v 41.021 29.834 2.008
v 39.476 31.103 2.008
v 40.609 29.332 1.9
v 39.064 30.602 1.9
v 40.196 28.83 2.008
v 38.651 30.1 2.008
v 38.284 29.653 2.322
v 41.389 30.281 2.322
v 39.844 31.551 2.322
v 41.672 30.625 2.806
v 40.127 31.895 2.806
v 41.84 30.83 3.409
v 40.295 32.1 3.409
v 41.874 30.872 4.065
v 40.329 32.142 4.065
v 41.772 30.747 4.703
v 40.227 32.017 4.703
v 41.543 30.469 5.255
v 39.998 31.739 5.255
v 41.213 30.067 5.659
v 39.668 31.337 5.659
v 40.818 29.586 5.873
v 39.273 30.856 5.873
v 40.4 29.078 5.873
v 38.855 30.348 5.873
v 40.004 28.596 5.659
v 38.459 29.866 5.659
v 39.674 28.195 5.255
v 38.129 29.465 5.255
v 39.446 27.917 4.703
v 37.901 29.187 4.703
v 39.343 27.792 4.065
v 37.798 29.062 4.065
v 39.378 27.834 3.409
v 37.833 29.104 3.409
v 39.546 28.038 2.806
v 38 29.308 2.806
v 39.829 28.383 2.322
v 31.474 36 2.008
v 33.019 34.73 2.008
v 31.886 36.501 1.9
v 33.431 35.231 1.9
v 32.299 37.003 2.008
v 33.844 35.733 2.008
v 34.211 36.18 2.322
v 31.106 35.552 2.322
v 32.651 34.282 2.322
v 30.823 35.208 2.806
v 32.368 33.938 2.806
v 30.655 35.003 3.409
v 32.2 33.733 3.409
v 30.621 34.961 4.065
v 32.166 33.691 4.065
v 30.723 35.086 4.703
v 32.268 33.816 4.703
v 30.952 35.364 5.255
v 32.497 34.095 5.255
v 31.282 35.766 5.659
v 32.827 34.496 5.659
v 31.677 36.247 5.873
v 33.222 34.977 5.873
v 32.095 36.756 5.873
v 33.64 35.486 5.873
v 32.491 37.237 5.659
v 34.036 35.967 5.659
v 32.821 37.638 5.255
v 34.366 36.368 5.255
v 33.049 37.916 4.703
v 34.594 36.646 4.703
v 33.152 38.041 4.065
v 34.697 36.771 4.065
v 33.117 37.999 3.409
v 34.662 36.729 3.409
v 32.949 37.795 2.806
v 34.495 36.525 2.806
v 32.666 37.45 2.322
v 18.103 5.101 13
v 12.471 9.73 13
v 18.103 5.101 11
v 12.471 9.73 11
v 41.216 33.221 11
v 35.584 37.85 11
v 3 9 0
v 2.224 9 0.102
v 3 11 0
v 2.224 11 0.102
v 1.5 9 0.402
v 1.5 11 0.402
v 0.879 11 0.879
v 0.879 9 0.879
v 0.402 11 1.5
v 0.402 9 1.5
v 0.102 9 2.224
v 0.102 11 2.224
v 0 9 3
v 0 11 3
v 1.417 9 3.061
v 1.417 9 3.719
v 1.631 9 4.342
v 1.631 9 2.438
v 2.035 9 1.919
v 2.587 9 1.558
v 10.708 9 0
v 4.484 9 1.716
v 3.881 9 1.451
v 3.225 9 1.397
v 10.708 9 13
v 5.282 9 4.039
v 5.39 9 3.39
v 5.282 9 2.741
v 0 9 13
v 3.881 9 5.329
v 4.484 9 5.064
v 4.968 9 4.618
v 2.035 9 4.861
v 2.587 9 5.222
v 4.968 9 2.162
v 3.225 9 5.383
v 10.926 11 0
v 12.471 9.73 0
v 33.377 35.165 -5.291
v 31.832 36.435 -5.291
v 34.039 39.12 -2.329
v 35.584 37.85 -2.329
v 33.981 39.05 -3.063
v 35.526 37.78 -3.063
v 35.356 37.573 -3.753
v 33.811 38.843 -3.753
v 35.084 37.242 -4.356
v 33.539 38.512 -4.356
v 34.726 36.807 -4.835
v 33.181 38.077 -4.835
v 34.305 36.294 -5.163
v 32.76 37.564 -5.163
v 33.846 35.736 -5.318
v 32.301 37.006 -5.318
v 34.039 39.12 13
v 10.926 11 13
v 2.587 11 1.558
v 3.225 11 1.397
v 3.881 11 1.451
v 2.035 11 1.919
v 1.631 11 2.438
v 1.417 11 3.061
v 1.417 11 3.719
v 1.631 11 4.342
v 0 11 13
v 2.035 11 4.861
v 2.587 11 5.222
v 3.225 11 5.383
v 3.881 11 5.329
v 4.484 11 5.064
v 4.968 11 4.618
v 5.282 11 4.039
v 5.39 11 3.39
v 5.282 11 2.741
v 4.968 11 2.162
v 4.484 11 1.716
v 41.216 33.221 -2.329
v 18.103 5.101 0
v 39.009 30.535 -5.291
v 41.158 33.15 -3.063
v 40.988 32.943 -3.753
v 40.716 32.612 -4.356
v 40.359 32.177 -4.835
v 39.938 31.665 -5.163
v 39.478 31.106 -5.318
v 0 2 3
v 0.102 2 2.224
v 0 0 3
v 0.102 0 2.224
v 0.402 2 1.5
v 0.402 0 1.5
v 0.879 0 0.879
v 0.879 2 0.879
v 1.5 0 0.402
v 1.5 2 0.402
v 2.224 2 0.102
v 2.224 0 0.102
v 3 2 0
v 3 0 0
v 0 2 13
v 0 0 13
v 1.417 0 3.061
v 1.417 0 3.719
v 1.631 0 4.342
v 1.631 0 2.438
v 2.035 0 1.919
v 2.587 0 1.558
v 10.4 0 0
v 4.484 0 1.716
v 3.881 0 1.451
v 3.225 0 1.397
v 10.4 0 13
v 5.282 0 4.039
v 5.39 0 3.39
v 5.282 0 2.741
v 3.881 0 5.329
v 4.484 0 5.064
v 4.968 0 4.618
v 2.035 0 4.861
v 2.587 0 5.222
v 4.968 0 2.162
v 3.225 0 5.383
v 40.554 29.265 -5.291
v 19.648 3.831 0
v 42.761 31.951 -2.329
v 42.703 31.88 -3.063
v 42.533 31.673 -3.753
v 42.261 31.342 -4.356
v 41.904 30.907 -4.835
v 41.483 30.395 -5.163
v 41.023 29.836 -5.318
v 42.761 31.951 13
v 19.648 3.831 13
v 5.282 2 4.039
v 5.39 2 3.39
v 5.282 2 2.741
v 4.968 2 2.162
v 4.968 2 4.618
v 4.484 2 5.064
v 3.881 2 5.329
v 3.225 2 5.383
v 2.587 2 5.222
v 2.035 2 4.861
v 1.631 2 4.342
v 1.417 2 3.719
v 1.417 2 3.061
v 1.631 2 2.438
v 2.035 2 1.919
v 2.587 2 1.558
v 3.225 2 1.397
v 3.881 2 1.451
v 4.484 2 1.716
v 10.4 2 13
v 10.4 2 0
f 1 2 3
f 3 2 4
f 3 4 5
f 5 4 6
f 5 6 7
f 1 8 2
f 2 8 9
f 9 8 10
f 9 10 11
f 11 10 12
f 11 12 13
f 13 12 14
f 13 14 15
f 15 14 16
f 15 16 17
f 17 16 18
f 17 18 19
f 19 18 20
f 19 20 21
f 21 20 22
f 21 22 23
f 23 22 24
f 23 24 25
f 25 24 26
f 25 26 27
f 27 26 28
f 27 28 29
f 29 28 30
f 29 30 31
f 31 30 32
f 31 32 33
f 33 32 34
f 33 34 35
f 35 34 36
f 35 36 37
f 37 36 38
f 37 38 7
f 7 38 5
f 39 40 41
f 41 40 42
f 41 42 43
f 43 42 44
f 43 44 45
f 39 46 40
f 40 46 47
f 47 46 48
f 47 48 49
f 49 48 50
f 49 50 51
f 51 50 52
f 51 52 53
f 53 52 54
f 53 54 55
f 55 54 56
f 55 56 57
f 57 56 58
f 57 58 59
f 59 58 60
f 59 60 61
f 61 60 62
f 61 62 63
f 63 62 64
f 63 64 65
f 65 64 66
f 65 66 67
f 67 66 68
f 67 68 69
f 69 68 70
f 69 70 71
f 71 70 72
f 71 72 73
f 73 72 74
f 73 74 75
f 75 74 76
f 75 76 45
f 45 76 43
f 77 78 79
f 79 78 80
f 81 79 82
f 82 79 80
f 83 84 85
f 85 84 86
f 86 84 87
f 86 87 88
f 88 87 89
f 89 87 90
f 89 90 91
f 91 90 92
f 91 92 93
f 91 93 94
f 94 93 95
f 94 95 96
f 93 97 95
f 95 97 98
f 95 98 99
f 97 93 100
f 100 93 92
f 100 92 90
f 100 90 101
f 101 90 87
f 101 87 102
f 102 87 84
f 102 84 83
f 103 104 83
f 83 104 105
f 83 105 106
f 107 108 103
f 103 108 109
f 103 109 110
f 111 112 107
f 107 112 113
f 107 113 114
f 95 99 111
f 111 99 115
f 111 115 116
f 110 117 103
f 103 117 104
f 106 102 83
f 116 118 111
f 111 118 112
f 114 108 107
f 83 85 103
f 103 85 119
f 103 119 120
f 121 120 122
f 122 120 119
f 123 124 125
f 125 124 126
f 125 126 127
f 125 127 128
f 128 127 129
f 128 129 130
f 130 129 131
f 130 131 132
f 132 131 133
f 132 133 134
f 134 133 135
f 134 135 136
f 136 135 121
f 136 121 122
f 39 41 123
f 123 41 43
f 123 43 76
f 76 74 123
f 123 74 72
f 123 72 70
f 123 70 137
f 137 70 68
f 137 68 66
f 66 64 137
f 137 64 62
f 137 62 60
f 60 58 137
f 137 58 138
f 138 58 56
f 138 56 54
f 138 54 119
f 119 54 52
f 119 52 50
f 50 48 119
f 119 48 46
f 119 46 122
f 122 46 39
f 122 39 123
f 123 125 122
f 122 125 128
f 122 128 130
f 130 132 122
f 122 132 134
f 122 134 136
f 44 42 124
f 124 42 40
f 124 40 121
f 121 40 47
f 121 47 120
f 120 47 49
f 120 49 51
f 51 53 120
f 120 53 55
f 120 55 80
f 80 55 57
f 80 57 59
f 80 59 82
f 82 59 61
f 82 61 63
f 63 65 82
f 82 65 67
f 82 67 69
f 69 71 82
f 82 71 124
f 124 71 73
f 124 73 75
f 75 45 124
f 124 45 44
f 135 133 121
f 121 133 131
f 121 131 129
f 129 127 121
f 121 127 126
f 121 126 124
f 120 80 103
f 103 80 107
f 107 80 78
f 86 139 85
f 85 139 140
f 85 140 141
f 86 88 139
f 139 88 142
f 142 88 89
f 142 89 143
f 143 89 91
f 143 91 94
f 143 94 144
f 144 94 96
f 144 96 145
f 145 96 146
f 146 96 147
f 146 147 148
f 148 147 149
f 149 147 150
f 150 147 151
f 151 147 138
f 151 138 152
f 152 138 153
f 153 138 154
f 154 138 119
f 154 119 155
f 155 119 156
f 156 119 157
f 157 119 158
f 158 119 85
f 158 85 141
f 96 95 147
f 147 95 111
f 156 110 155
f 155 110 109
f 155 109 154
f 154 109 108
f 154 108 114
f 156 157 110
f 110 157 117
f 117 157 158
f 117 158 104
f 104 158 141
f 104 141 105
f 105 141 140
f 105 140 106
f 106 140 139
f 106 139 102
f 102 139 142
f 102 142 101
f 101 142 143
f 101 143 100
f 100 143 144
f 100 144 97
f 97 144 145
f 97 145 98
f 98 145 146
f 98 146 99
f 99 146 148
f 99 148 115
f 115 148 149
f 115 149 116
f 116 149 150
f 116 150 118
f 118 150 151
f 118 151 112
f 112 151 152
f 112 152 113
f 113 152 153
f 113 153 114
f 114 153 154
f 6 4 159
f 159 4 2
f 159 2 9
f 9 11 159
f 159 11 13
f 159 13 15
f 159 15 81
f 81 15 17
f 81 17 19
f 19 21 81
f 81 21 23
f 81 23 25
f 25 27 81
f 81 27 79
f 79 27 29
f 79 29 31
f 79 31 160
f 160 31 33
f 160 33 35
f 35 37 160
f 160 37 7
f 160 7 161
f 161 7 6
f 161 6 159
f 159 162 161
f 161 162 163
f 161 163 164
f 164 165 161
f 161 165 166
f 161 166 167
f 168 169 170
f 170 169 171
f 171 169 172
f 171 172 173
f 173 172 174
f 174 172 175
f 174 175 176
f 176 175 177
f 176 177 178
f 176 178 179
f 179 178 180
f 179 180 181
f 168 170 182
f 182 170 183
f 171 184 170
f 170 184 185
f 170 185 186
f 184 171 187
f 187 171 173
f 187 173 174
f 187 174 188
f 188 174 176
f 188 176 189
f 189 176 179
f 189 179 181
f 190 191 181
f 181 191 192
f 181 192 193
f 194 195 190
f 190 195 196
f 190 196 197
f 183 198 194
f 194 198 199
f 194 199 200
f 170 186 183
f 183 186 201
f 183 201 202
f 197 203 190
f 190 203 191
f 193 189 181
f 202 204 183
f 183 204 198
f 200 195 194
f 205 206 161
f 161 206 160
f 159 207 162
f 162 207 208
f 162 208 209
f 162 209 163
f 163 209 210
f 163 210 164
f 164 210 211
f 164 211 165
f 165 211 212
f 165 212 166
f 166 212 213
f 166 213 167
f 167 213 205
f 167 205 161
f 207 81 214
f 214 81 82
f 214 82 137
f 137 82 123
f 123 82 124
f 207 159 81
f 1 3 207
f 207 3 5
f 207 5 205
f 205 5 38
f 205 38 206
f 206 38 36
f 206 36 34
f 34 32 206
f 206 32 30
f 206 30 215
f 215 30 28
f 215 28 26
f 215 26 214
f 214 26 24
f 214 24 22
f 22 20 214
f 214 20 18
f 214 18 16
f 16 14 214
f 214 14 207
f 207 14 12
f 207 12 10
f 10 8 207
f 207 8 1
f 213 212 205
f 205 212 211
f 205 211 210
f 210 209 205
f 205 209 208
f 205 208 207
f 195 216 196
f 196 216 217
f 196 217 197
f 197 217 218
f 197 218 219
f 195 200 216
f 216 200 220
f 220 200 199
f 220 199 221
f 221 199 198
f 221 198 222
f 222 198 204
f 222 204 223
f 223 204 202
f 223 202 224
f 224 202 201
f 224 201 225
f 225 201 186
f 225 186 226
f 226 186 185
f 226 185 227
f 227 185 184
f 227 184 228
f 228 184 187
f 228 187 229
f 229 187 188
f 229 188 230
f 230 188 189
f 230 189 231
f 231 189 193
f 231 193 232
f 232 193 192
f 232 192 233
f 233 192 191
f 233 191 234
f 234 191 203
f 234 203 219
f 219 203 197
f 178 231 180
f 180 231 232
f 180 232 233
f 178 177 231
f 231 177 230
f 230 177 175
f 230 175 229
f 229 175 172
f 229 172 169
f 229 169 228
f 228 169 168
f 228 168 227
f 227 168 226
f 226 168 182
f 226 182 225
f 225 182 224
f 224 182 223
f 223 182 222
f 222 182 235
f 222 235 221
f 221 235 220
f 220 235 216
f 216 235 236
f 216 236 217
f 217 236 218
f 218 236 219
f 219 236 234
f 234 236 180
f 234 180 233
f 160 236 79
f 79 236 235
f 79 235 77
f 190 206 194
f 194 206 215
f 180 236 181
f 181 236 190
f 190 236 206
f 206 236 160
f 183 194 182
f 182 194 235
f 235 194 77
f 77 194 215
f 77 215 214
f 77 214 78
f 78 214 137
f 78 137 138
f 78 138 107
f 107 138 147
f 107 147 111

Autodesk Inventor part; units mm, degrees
ref_plane "YZ Plane" through (0, 0, 0) normal (1, 0, 0) x (0, 1, 0)
ref_plane "XZ Plane" through (0, 0, 0) normal (0, 1, 0) x (-1, 0, 0)
ref_plane "XY Plane" through (0, 0, 0) normal (0, 0, 1) x (1, 0, 0)
sketch "Esquisse1" plane through (0, 0, 0) normal (0, 0, 1) x (1, 0, 0)
  line L0 (0, 0) -> (0, 2)
  line L1 (0, 2) -> (10.4, 2)
  line L2 (0, 0) -> (10.4, 0)
  line L3 (10.4, 0) -> (19.648, 3.8307)
  line L4 (0, 9) -> (10.7082, 9)
  line L5 (0, 11) -> (0, 9)
  line L6 (0, 11) -> (10.9257, 11)
  line L7 (10.4, 2) -> (18.103, 5.1006)
  line L8 (18.103, 5.1006) -> (19.648, 3.8307)
  line L9 (10.9257, 11) -> (19.648, 3.8307) construction
  line L10 (10.9257, 11) -> (12.2416, 9.9184) construction
  line L11 (10.9257, 11) -> (12.4707, 9.73)
  line L12 (10.7082, 9) -> (12.4707, 9.73)
  dimension "d0" = 2
  dimension "d1" = 10.4
  dimension "d2" = 10.4
  dimension "d3" = 157.5
  dimension "d5" = 10.01
  dimension "d8" = 7
  dimension "d26" = 2
  dimension "d32" = 2
  dimension "d33" = 2
  dimension "d34" = 157.5
extrude "Extrusion1" add sketch "Esquisse1" along normal blind 13
sketch "Esquisse4" plane through (0, 0, 0) normal (0, -1, 0) x (1, 0, 0)
  circle A0 centre (3.39, 3.39) radius 2
  line L0 (0, 13) -> (10.4, 13) projected
  line L1 (0, 0) -> (0, 13) projected
  line L2 (10.4, 0) -> (0, 0) projected
  point P0 (3, 13)
  point P1 (0, 10)
  dimension "d35" = 4
  dimension "d37" = 3.39
  dimension "d50" = 3.39
extrude "Extrusion3" cut sketch "Esquisse4" against normal blind 13
ref_plane "Plan de construction3" through (19.648, 3.8307, 13) normal (-0.7725294, 0.634979, 0) x (-0.634979, -0.7725294, 0)
sketch "Esquisse5" plane through (19.648, 3.8307, 13) normal (-0.7725294, 0.634979, 0) x (-0.634979, -0.7725294, 0)
  line L0 (0, 0) -> (6.9376, 0) projected
  line L1 (0, -13) -> (6.9376, -13) projected
  line L2 (0, 0) -> (0, -13)
  line L3 (0, -13) -> (-32.924, -18.2914)
  line L4 (-36.4, -15.3294) -> (-36.4, 0)
  line L5 (-36.4, 0) -> (0, 0)
  arc A0 (-36.4, -15.3294) -> (-32.924, -18.2914) centre (-33.4, -15.3294) ccw
  point P0 (15.4354, -13)
  point P1 (5.0326, 0)
  point P2 (-36.4, -18.85)
  dimension "d40" = 36.4
  dimension "d41" = 18.85
  dimension "d42" = 3
extrude "Extrusion4" add sketch "Esquisse5" along normal blind 2
ref_plane "Plan de construction4" through (12.4707, 9.73, 13) normal (-0.7725294, 0.634979, 0) x (-0.634979, -0.7725294, 0)
sketch "Esquisse6" plane through (12.4707, 9.73, 13) normal (-0.7725294, 0.634979, 0) x (-0.634979, -0.7725294, 0)
  line L0 (0, -13) -> (0, 0) projected
  line L1 (0, -13) -> (0, 0) projected
  line L2 (0, -13) -> (0, 0)
  line L3 (0, 0) -> (-36.4, 0)
  line L4 (-36.4, 0) -> (-36.4, -15.3294) projected
  line L5 (-36.4, 0) -> (-36.4, -15.3294)
  line L6 (-32.924, -18.2914) -> (0, -13)
  arc A0 (-36.4, -15.3294) -> (-32.924, -18.2914) centre (-33.4, -15.3294) ccw
  point P0 (15.4354, -13)
  point P1 (-36.4, -18.85)
  dimension "d45" = 36.4
  dimension "d46" = 18.85
  dimension "d47" = 3
extrude "Extrusion5" add sketch "Esquisse6" along normal blind 2
fillet "Congé4" radius 3 2 edges at (0, 1, 0) (0, 10, 0)
ref_plane "Plan de construction6" through (34.8114, 38.4851, 13) normal (0, 0, -1) x (-1, 0, 0)
sketch "Esquisse8" plane through (34.8114, 38.4851, 13) normal (0, 0, -1) x (-1, 0, 0)
  line L0 (1.4347, -3.3203) -> (-0.7725, -0.635) projected
  line L1 (24.1032, -29.4851) -> (22.3407, -28.755) projected
  line L2 (-0.7725, -0.635) -> (22.3407, -28.755)
  line L3 (16.7085, -33.3845) -> (-6.4048, -5.2644) projected
  line L4 (22.3407, -28.755) -> (16.7085, -33.3845)
  line L5 (16.7085, -33.3845) -> (-6.4048, -5.2644)
  line L6 (-6.4048, -5.2644) -> (-0.7725, -0.635)
  point P0 (34.8114, -38.4851)
extrude "Extrusion6" add sketch "Esquisse8" along normal blind 2
sketch "Esquisse9" plane through (19.648, 3.8307, 13) normal (0.7725294, -0.634979, 0) x (0, 0, -1)
  circle A0 centre (9.1, 33.01) radius 2
  line L0 (18.2914, 32.924) -> (13, 0) construction
  line L1 (17.0751, 25.3561) -> (18.85, 36.4) construction
  line L2 (18.85, 36.4) -> (0, 36.4) construction
  line L3 (0, 36.4) -> (0, 0) construction
  point P0 (13, -15.4354)
  dimension "d54" = 3.39
  dimension "d55" = 9.1
  dimension "d56" = 4
extrude "Extrusion7" cut sketch "Esquisse9" against normal blind 13
properties part number "Thumb1" material "Plastique ABS"
